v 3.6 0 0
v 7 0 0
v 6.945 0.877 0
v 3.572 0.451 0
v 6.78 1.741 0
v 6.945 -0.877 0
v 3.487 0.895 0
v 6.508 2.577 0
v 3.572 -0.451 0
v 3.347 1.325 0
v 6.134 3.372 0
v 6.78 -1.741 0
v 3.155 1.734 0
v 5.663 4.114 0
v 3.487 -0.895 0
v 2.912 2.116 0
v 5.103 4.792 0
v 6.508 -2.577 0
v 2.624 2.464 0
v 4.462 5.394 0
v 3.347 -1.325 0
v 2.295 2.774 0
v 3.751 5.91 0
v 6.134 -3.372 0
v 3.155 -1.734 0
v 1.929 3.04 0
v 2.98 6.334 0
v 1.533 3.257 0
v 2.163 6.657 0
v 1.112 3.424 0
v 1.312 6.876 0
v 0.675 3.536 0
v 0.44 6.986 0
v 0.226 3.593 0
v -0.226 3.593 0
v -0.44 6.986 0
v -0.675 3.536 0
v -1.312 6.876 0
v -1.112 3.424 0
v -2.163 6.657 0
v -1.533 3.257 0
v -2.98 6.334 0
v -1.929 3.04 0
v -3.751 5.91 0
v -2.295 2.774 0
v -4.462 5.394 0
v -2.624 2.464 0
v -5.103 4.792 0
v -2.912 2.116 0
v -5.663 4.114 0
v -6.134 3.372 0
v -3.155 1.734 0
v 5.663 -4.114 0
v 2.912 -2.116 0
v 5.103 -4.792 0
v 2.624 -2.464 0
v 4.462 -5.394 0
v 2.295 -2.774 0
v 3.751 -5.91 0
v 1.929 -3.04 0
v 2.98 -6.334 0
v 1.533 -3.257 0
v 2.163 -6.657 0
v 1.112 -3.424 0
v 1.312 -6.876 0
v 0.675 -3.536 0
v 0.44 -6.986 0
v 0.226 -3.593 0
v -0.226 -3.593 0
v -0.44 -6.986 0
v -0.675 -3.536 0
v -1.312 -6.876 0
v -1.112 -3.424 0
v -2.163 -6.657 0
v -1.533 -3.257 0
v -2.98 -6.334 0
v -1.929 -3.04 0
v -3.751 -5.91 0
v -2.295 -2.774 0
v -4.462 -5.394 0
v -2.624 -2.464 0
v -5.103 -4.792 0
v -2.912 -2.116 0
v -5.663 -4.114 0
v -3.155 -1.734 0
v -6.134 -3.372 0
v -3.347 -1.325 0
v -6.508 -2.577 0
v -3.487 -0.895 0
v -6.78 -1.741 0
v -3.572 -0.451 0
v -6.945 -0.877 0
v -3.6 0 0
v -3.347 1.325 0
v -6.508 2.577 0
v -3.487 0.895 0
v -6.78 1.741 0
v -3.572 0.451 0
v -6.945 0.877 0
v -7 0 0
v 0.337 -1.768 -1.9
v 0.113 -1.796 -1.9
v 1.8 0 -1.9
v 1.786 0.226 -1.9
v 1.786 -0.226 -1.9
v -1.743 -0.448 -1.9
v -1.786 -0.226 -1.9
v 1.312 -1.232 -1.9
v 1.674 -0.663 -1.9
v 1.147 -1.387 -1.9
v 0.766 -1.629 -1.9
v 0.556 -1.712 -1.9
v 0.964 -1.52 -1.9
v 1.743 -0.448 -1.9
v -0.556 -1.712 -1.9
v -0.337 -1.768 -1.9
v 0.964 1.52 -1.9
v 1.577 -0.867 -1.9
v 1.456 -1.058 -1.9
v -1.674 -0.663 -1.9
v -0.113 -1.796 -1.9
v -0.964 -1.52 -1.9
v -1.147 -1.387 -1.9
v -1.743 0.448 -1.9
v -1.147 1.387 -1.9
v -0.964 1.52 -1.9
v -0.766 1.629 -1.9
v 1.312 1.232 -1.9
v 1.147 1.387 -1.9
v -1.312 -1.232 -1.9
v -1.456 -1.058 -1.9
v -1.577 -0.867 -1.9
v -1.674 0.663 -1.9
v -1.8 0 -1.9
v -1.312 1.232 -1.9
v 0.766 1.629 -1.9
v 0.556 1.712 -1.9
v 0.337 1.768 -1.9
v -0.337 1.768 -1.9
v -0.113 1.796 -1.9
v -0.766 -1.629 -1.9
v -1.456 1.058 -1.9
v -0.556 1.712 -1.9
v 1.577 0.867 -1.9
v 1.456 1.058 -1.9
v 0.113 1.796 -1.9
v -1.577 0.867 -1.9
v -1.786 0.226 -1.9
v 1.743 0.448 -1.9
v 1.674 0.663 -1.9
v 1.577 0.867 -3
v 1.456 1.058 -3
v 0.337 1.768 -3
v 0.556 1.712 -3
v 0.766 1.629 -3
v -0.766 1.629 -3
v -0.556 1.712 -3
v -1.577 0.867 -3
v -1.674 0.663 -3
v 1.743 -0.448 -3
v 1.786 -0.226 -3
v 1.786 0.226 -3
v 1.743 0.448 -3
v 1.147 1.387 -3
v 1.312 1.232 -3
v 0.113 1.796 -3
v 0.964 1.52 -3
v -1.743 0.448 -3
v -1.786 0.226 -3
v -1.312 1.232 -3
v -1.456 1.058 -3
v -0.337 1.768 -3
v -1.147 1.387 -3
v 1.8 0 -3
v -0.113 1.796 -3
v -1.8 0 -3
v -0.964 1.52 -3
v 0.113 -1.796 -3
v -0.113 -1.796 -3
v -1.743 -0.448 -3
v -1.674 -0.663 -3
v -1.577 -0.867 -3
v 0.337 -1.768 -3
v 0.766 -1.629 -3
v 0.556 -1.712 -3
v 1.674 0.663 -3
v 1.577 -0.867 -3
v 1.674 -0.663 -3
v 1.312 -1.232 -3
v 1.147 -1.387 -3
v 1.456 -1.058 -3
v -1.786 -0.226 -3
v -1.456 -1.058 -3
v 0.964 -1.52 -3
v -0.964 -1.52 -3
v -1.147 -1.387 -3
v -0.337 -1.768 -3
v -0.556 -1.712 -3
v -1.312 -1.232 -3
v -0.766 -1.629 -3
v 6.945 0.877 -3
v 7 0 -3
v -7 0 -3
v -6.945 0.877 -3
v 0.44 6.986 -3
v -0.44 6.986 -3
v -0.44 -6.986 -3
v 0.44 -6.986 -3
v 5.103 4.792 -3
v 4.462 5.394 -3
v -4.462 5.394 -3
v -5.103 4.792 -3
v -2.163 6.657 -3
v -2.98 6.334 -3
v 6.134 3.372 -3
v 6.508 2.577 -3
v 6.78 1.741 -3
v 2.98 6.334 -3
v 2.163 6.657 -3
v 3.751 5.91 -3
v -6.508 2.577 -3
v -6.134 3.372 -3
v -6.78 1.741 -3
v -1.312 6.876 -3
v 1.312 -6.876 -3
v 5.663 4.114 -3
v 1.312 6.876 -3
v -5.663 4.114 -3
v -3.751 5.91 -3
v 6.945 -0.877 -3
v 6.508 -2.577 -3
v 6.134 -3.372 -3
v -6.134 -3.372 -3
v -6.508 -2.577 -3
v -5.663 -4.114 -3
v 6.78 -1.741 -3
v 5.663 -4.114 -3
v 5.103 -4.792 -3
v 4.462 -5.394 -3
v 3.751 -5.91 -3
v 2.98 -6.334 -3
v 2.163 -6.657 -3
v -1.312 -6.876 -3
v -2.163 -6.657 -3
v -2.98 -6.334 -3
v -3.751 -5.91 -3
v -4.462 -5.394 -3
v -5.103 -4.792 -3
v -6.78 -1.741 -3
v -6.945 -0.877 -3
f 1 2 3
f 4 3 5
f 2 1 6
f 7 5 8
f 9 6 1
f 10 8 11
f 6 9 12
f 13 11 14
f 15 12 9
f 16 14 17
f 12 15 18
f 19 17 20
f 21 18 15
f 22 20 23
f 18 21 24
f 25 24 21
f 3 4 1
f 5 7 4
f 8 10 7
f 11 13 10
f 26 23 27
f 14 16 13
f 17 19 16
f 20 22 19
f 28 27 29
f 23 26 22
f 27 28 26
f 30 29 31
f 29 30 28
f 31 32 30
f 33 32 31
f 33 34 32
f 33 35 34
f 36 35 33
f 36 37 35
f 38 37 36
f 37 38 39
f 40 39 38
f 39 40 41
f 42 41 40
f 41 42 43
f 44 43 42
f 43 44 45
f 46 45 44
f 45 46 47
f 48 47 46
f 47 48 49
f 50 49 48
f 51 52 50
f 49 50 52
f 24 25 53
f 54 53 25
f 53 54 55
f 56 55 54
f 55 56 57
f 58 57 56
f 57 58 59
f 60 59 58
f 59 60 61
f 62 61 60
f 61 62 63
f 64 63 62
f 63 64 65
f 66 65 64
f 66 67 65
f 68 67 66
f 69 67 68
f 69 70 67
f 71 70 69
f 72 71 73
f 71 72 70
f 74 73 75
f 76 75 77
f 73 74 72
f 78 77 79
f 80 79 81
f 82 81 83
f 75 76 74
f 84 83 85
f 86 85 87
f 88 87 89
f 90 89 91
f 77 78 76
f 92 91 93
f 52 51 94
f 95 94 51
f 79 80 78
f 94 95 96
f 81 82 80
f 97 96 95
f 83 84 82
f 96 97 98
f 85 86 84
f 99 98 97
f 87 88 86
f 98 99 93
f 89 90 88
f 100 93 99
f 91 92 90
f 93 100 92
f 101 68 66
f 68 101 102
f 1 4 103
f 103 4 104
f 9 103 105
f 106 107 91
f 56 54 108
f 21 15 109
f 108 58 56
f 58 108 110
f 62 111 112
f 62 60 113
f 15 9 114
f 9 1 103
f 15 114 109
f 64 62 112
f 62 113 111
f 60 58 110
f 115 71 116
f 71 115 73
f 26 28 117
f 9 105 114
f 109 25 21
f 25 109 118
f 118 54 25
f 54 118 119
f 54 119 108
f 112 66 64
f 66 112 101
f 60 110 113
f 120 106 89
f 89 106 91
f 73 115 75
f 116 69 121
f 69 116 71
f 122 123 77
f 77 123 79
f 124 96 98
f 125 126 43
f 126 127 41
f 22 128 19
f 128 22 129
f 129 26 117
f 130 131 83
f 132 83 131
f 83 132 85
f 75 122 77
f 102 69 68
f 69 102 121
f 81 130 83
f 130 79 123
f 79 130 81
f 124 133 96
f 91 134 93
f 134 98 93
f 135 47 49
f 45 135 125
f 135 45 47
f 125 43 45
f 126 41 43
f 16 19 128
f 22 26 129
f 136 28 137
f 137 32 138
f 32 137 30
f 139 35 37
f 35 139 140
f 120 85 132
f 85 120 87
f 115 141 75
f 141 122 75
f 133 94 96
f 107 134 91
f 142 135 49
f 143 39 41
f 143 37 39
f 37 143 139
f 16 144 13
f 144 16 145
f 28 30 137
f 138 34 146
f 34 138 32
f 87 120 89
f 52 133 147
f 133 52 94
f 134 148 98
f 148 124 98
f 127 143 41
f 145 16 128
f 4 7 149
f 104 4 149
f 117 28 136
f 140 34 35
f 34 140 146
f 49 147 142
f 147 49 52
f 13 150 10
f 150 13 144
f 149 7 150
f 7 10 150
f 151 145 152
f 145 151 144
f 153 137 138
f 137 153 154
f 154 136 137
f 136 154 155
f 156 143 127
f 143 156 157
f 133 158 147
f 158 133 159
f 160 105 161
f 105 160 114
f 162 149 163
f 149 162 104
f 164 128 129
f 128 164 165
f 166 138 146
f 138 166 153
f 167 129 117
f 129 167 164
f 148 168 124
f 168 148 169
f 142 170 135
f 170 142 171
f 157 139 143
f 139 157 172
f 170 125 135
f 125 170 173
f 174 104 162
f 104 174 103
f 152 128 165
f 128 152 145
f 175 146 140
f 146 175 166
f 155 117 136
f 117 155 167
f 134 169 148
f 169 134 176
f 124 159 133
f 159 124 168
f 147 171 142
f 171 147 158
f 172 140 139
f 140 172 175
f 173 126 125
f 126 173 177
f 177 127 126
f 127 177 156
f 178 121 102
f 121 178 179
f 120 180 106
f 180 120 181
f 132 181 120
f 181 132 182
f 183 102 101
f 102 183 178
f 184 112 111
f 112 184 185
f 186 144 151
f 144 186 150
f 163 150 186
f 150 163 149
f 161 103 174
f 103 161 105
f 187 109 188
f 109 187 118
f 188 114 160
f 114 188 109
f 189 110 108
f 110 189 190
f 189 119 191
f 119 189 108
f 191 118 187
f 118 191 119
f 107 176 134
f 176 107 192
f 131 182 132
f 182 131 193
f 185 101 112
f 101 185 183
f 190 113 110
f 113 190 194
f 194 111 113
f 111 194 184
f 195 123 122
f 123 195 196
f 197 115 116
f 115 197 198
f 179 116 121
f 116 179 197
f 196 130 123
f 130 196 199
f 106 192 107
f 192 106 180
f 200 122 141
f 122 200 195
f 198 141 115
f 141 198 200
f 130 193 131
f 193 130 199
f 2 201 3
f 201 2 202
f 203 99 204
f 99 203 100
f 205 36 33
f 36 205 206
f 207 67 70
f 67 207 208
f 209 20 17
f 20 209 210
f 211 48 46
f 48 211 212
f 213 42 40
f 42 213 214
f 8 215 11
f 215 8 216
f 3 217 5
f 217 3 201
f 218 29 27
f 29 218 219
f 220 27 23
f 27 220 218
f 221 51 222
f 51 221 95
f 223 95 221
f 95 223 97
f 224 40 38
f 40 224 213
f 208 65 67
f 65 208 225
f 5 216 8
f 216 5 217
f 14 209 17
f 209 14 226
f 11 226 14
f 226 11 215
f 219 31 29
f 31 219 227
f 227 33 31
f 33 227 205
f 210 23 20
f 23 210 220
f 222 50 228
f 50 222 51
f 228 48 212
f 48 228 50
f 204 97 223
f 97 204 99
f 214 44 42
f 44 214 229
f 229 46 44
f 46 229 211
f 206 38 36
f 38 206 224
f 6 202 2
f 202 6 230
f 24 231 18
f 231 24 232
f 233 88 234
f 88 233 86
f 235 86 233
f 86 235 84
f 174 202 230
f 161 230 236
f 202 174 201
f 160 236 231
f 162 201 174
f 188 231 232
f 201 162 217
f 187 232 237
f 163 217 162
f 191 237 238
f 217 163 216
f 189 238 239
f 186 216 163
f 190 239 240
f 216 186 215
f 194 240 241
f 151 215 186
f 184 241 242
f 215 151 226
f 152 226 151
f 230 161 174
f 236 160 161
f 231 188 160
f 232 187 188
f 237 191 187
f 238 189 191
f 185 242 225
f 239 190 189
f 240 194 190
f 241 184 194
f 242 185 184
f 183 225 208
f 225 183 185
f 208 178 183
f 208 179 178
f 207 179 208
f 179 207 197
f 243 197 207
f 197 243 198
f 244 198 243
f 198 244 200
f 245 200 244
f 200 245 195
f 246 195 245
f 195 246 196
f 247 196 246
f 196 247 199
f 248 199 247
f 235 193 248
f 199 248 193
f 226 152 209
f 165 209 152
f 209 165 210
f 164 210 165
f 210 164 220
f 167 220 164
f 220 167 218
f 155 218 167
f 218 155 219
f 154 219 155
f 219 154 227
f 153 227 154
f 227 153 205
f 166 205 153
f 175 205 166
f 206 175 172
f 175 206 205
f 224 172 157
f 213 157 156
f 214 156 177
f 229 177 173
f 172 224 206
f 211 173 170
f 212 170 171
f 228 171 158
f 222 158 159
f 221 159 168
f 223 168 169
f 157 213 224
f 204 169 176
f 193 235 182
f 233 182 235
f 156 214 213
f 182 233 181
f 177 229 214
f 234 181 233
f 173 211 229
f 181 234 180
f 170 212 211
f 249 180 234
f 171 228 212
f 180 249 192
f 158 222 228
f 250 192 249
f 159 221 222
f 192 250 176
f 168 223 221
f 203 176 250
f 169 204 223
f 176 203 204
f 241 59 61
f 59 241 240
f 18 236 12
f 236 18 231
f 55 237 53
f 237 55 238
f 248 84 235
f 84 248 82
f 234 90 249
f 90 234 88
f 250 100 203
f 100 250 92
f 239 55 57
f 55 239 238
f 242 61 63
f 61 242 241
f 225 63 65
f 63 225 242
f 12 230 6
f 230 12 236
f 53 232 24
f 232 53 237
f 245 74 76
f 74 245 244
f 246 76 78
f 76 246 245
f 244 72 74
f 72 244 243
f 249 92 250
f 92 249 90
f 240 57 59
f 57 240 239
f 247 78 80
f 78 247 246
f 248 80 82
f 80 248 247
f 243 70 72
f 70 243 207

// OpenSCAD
$fn = 50;


difference() {
	union() {
		translate(v = [0, 0, -3.0000000000]) {
			cylinder(h = 3, r = 7.0000000000);
		}
	}
	union() {
		translate(v = [0, 0, 0]) {
			rotate(a = [0, 0, 0]) {
				difference() {
					union() {
						translate(v = [0, 0, -6.0000000000]) {
							cylinder(h = 6, r = 1.5000000000);
						}
						translate(v = [0, 0, -1.9000000000]) {
							cylinder(h = 1.9000000000, r1 = 1.8000000000, r2 = 3.6000000000);
						}
						translate(v = [0, 0, -6.0000000000]) {
							cylinder(h = 6, r = 1.8000000000);
						}
						translate(v = [0, 0, -6.0000000000]) {
							cylinder(h = 6, r = 1.5000000000);
						}
					}
					union();
				}
			}
		}
	}
}
